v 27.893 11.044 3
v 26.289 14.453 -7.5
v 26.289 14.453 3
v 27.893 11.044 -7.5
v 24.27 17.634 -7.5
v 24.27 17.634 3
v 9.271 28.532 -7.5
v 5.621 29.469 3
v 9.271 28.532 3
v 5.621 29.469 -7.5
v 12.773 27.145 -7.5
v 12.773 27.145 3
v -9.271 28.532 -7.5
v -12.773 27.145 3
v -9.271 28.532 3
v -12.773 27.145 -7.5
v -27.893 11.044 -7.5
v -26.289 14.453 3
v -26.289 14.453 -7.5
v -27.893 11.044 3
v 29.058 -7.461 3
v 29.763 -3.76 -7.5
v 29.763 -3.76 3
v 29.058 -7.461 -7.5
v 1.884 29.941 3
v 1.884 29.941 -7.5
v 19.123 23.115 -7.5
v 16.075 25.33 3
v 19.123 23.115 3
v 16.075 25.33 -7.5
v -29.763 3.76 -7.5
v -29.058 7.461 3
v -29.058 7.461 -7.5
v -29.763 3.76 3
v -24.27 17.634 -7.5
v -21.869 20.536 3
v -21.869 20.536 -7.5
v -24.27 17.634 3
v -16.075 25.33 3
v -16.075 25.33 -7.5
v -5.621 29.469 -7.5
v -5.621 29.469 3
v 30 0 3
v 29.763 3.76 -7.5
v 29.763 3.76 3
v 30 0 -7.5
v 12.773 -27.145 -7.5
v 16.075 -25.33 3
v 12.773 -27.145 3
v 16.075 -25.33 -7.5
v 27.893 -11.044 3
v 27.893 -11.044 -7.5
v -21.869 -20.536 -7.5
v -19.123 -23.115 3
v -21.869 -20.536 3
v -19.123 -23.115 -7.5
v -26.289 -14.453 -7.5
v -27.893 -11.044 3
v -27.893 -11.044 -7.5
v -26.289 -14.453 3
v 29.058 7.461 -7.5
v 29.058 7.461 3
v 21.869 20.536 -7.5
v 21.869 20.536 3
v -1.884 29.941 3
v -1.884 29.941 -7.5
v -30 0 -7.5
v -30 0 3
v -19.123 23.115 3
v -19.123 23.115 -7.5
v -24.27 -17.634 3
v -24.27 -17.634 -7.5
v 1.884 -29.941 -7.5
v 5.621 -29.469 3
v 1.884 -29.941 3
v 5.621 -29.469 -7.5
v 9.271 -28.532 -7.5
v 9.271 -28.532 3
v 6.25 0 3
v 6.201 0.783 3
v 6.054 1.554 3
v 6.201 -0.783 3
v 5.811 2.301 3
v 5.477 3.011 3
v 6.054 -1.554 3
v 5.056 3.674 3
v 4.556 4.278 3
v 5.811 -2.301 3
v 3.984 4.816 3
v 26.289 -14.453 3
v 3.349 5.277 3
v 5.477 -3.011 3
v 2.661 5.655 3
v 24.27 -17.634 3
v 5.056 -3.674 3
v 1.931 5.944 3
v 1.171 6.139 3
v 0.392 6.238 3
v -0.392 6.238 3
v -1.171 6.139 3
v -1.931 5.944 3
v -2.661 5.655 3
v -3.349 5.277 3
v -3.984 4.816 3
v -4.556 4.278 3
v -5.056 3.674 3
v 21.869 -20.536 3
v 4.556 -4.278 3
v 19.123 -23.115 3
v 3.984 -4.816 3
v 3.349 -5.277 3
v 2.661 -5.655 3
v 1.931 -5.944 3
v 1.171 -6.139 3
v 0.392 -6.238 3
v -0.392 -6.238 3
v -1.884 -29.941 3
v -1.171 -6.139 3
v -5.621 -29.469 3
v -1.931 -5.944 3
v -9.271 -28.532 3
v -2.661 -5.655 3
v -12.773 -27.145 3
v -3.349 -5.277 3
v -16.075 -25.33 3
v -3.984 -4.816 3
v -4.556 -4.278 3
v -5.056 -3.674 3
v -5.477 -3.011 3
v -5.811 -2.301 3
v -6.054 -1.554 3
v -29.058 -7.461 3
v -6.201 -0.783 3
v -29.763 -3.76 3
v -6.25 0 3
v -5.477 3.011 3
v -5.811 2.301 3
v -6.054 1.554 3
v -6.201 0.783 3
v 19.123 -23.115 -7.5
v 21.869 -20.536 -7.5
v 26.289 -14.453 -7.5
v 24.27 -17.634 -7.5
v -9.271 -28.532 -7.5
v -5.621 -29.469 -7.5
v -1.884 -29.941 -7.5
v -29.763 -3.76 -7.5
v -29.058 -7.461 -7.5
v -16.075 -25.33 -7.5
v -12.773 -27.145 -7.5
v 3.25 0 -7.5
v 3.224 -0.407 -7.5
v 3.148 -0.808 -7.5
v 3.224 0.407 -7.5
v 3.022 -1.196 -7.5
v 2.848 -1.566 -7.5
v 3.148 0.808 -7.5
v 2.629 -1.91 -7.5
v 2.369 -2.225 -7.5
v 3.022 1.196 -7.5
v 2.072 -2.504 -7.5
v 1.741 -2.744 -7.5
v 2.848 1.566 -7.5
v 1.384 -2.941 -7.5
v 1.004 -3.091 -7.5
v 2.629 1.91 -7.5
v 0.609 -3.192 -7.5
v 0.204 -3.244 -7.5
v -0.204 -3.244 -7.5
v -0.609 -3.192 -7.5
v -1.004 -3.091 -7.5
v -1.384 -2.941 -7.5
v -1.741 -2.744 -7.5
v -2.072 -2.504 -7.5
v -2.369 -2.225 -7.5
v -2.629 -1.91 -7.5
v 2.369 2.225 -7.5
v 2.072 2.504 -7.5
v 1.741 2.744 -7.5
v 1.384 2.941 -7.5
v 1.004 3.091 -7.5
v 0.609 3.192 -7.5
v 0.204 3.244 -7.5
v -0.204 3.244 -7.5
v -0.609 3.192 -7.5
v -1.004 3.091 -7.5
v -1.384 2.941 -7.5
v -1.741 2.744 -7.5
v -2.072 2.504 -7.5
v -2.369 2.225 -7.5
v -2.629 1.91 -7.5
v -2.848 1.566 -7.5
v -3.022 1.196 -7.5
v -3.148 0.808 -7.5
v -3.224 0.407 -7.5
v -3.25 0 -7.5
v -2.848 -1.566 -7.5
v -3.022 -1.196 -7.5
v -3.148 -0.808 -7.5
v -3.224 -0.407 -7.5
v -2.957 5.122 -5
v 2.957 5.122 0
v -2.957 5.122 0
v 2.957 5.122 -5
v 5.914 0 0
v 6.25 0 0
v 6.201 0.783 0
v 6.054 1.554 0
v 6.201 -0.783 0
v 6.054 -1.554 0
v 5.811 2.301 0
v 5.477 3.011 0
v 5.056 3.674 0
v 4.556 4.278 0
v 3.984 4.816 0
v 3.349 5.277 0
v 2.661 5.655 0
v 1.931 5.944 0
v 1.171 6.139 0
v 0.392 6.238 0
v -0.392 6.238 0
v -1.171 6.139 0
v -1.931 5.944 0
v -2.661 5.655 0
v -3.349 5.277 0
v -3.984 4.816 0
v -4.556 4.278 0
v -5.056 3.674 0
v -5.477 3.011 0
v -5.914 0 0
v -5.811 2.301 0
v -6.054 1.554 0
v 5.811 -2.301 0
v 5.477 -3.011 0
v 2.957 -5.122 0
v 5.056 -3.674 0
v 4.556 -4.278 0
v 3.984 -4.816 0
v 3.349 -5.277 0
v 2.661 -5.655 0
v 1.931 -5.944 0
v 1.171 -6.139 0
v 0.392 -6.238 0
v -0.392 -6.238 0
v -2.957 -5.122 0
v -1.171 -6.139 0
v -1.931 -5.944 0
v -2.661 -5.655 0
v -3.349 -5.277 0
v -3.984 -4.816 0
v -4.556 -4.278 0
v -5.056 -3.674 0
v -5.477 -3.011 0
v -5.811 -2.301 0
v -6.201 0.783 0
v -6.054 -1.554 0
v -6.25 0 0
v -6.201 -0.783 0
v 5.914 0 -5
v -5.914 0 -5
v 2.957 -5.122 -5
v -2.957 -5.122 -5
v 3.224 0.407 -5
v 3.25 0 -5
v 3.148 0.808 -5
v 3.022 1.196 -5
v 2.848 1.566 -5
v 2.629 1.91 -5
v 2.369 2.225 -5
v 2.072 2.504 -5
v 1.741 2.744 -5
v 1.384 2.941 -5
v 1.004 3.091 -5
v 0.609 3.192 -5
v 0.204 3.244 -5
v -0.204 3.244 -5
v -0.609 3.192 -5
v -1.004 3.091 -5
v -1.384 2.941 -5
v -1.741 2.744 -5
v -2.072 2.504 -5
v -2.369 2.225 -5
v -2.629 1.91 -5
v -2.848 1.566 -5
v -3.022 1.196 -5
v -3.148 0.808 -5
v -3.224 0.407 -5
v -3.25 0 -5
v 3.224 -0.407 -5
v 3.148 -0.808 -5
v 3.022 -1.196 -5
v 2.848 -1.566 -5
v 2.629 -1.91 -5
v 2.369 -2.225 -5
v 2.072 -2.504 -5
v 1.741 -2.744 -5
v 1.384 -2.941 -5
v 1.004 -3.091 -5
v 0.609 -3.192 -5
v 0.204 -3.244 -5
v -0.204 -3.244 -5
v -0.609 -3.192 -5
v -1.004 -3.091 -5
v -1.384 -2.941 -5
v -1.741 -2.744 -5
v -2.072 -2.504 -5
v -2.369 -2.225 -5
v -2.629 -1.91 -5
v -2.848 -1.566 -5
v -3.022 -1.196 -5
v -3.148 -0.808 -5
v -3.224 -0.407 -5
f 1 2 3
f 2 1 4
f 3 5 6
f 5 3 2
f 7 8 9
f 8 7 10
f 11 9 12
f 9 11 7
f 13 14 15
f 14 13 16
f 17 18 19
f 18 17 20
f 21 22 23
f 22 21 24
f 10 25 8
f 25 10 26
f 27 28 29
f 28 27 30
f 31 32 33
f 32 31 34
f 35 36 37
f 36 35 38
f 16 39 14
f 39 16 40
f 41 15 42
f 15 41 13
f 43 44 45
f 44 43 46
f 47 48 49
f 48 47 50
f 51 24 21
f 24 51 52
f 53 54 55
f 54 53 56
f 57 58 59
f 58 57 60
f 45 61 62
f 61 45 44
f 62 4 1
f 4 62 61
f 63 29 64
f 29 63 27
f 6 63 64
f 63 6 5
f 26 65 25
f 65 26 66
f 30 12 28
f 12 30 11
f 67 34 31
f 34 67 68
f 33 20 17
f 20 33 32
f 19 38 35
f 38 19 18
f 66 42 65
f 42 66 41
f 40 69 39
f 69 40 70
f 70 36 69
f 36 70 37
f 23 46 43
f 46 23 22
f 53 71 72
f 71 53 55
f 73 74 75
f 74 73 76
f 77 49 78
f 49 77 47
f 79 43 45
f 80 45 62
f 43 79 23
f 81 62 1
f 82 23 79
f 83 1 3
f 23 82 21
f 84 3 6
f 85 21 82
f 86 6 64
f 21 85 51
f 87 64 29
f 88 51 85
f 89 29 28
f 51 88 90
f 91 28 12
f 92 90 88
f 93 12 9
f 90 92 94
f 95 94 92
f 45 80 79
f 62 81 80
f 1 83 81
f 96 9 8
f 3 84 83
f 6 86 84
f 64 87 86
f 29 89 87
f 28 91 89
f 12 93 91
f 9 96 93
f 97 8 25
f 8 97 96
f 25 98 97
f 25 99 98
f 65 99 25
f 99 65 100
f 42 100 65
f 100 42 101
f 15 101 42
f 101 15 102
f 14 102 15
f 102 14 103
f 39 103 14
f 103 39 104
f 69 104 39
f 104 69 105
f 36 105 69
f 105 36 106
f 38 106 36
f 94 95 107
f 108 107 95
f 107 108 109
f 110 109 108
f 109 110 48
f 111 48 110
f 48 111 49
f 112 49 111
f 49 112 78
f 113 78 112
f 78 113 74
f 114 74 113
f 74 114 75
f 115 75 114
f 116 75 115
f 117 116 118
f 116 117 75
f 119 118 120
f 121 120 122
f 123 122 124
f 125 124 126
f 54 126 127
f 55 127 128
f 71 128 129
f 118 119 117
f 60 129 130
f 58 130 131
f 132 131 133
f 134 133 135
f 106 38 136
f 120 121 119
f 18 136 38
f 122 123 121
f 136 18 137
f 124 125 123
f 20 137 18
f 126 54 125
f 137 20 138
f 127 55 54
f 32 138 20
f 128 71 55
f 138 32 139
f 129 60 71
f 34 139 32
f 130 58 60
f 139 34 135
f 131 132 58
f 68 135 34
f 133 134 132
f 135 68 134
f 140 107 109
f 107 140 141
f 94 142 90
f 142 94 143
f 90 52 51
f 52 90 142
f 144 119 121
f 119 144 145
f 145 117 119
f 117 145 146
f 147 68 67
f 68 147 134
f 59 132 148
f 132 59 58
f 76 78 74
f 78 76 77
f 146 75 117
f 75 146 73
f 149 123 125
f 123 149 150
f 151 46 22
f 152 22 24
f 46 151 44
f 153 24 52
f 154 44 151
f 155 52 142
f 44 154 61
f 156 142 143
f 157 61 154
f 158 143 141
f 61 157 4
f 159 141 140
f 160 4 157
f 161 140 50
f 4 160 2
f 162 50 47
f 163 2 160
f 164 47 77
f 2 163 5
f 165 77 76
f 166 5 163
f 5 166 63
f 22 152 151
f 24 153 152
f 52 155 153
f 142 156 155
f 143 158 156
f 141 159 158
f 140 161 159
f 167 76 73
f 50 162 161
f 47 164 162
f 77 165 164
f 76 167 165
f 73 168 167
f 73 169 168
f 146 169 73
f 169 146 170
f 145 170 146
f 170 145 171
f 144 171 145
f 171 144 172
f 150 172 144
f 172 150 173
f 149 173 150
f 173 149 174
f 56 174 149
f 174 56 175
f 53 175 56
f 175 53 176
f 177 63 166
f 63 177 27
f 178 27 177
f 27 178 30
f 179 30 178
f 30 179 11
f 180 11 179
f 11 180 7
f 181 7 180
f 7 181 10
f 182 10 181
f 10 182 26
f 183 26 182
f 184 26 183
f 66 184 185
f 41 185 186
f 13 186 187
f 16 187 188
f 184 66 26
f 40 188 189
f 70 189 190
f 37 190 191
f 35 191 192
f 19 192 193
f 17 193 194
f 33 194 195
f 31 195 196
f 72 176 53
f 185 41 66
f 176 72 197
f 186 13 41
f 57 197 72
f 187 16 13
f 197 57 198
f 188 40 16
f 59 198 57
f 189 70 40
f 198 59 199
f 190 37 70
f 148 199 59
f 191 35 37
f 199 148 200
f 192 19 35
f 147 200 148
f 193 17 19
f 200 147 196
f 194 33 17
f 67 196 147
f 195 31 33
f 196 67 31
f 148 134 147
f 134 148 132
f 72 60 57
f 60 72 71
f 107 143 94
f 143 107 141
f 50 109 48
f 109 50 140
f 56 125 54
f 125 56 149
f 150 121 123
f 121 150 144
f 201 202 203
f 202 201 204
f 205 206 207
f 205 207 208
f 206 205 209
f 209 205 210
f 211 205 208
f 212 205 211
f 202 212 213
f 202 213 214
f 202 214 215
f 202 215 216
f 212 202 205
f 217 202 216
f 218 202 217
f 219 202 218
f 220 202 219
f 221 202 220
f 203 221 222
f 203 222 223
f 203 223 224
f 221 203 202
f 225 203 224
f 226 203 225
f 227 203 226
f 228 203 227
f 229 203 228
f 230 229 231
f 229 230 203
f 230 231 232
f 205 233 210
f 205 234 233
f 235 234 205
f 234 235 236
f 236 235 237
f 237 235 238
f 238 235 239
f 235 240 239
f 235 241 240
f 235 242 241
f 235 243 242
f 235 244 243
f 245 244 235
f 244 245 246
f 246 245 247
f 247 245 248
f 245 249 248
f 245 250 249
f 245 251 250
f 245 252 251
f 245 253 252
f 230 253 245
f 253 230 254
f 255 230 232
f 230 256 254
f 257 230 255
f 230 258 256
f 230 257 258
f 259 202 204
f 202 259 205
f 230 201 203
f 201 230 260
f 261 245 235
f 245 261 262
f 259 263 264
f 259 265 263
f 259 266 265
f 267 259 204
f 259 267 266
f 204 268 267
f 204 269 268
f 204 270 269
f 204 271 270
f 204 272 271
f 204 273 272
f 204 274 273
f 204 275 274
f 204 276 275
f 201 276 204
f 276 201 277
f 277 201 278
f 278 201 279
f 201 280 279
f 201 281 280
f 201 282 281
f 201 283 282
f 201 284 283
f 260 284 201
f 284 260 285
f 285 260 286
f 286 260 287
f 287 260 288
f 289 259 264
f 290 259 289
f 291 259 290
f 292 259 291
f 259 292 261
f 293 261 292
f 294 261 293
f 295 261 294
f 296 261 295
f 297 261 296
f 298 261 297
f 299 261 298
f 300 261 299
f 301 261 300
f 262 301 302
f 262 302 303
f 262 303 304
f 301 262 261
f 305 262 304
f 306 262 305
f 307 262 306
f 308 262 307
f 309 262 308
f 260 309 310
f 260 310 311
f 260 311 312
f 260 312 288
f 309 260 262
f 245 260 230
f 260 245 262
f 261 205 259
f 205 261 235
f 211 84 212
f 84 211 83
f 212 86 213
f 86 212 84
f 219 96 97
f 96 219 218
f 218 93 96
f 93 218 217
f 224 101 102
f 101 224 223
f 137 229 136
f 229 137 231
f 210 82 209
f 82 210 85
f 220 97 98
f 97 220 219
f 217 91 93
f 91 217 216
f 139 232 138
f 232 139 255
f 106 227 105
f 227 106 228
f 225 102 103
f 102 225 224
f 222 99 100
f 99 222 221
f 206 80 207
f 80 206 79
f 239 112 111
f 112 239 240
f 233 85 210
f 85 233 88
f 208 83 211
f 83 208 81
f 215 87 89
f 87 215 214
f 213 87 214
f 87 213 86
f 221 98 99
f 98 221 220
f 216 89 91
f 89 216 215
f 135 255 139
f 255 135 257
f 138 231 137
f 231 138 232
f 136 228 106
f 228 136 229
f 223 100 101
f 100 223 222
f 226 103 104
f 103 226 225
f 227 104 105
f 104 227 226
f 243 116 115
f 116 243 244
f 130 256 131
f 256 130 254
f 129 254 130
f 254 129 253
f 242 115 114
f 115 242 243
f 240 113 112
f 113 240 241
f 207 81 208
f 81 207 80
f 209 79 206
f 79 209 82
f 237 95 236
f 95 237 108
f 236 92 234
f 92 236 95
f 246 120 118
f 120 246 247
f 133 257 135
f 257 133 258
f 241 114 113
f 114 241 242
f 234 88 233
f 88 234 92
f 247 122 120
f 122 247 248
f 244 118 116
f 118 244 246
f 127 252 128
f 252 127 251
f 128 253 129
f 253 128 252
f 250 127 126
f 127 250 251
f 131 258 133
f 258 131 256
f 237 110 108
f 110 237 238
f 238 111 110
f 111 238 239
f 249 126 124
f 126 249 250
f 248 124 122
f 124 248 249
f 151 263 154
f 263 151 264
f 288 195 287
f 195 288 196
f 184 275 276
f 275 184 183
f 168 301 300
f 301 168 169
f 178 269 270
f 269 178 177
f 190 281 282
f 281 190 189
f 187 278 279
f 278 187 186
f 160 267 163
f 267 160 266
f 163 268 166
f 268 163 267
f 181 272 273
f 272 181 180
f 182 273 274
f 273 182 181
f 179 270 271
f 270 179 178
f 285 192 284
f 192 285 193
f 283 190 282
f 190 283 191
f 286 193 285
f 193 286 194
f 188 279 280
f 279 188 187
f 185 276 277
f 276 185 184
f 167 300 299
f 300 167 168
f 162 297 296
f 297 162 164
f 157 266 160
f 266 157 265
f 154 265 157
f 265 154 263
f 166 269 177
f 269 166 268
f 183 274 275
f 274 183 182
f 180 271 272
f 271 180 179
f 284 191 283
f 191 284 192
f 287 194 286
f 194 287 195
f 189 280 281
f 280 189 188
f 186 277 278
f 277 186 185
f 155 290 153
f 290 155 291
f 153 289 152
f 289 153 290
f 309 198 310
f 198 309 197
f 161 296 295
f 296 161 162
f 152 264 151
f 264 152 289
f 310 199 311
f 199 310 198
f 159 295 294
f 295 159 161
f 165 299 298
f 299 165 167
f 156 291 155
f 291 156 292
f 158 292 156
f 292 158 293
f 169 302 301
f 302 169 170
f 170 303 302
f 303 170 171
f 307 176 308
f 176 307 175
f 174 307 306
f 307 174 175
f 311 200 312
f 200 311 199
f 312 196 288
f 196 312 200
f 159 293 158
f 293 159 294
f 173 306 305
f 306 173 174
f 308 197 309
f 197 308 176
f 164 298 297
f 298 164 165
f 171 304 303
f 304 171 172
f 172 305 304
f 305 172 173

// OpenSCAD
$fn = 50;


difference() {
	union() {
		translate(v = [0, 0, -7.5000000000]) {
			cylinder(h = 10.5000000000, r = 30.0000000000);
		}
		#translate(v = [0, 0, -9.0000000000]) {
			cylinder(h = 9, r = 2.8750000000);
		}
	}
	union() {
		translate(v = [0, 0, 0]) {
			rotate(a = [0, 0, 0]) {
				difference() {
					union() {
						translate(v = [0, 0, -5]) {
							linear_extrude(height = 5) {
								polygon(points = [[5.9142500000, 0.0000000000], [2.9571250000, 5.1218907443], [-2.9571250000, 5.1218907443], [-5.9142500000, 0.0000000000], [-2.9571250000, -5.1218907443], [2.9571250000, -5.1218907443]]);
							}
						}
					}
					union();
				}
			}
		}
		#cylinder(h = 3, r = 6.2500000000);
		#translate(v = [0, 0, -100.0000000000]) {
			cylinder(h = 200, r = 3.2500000000);
		}
	}
}
